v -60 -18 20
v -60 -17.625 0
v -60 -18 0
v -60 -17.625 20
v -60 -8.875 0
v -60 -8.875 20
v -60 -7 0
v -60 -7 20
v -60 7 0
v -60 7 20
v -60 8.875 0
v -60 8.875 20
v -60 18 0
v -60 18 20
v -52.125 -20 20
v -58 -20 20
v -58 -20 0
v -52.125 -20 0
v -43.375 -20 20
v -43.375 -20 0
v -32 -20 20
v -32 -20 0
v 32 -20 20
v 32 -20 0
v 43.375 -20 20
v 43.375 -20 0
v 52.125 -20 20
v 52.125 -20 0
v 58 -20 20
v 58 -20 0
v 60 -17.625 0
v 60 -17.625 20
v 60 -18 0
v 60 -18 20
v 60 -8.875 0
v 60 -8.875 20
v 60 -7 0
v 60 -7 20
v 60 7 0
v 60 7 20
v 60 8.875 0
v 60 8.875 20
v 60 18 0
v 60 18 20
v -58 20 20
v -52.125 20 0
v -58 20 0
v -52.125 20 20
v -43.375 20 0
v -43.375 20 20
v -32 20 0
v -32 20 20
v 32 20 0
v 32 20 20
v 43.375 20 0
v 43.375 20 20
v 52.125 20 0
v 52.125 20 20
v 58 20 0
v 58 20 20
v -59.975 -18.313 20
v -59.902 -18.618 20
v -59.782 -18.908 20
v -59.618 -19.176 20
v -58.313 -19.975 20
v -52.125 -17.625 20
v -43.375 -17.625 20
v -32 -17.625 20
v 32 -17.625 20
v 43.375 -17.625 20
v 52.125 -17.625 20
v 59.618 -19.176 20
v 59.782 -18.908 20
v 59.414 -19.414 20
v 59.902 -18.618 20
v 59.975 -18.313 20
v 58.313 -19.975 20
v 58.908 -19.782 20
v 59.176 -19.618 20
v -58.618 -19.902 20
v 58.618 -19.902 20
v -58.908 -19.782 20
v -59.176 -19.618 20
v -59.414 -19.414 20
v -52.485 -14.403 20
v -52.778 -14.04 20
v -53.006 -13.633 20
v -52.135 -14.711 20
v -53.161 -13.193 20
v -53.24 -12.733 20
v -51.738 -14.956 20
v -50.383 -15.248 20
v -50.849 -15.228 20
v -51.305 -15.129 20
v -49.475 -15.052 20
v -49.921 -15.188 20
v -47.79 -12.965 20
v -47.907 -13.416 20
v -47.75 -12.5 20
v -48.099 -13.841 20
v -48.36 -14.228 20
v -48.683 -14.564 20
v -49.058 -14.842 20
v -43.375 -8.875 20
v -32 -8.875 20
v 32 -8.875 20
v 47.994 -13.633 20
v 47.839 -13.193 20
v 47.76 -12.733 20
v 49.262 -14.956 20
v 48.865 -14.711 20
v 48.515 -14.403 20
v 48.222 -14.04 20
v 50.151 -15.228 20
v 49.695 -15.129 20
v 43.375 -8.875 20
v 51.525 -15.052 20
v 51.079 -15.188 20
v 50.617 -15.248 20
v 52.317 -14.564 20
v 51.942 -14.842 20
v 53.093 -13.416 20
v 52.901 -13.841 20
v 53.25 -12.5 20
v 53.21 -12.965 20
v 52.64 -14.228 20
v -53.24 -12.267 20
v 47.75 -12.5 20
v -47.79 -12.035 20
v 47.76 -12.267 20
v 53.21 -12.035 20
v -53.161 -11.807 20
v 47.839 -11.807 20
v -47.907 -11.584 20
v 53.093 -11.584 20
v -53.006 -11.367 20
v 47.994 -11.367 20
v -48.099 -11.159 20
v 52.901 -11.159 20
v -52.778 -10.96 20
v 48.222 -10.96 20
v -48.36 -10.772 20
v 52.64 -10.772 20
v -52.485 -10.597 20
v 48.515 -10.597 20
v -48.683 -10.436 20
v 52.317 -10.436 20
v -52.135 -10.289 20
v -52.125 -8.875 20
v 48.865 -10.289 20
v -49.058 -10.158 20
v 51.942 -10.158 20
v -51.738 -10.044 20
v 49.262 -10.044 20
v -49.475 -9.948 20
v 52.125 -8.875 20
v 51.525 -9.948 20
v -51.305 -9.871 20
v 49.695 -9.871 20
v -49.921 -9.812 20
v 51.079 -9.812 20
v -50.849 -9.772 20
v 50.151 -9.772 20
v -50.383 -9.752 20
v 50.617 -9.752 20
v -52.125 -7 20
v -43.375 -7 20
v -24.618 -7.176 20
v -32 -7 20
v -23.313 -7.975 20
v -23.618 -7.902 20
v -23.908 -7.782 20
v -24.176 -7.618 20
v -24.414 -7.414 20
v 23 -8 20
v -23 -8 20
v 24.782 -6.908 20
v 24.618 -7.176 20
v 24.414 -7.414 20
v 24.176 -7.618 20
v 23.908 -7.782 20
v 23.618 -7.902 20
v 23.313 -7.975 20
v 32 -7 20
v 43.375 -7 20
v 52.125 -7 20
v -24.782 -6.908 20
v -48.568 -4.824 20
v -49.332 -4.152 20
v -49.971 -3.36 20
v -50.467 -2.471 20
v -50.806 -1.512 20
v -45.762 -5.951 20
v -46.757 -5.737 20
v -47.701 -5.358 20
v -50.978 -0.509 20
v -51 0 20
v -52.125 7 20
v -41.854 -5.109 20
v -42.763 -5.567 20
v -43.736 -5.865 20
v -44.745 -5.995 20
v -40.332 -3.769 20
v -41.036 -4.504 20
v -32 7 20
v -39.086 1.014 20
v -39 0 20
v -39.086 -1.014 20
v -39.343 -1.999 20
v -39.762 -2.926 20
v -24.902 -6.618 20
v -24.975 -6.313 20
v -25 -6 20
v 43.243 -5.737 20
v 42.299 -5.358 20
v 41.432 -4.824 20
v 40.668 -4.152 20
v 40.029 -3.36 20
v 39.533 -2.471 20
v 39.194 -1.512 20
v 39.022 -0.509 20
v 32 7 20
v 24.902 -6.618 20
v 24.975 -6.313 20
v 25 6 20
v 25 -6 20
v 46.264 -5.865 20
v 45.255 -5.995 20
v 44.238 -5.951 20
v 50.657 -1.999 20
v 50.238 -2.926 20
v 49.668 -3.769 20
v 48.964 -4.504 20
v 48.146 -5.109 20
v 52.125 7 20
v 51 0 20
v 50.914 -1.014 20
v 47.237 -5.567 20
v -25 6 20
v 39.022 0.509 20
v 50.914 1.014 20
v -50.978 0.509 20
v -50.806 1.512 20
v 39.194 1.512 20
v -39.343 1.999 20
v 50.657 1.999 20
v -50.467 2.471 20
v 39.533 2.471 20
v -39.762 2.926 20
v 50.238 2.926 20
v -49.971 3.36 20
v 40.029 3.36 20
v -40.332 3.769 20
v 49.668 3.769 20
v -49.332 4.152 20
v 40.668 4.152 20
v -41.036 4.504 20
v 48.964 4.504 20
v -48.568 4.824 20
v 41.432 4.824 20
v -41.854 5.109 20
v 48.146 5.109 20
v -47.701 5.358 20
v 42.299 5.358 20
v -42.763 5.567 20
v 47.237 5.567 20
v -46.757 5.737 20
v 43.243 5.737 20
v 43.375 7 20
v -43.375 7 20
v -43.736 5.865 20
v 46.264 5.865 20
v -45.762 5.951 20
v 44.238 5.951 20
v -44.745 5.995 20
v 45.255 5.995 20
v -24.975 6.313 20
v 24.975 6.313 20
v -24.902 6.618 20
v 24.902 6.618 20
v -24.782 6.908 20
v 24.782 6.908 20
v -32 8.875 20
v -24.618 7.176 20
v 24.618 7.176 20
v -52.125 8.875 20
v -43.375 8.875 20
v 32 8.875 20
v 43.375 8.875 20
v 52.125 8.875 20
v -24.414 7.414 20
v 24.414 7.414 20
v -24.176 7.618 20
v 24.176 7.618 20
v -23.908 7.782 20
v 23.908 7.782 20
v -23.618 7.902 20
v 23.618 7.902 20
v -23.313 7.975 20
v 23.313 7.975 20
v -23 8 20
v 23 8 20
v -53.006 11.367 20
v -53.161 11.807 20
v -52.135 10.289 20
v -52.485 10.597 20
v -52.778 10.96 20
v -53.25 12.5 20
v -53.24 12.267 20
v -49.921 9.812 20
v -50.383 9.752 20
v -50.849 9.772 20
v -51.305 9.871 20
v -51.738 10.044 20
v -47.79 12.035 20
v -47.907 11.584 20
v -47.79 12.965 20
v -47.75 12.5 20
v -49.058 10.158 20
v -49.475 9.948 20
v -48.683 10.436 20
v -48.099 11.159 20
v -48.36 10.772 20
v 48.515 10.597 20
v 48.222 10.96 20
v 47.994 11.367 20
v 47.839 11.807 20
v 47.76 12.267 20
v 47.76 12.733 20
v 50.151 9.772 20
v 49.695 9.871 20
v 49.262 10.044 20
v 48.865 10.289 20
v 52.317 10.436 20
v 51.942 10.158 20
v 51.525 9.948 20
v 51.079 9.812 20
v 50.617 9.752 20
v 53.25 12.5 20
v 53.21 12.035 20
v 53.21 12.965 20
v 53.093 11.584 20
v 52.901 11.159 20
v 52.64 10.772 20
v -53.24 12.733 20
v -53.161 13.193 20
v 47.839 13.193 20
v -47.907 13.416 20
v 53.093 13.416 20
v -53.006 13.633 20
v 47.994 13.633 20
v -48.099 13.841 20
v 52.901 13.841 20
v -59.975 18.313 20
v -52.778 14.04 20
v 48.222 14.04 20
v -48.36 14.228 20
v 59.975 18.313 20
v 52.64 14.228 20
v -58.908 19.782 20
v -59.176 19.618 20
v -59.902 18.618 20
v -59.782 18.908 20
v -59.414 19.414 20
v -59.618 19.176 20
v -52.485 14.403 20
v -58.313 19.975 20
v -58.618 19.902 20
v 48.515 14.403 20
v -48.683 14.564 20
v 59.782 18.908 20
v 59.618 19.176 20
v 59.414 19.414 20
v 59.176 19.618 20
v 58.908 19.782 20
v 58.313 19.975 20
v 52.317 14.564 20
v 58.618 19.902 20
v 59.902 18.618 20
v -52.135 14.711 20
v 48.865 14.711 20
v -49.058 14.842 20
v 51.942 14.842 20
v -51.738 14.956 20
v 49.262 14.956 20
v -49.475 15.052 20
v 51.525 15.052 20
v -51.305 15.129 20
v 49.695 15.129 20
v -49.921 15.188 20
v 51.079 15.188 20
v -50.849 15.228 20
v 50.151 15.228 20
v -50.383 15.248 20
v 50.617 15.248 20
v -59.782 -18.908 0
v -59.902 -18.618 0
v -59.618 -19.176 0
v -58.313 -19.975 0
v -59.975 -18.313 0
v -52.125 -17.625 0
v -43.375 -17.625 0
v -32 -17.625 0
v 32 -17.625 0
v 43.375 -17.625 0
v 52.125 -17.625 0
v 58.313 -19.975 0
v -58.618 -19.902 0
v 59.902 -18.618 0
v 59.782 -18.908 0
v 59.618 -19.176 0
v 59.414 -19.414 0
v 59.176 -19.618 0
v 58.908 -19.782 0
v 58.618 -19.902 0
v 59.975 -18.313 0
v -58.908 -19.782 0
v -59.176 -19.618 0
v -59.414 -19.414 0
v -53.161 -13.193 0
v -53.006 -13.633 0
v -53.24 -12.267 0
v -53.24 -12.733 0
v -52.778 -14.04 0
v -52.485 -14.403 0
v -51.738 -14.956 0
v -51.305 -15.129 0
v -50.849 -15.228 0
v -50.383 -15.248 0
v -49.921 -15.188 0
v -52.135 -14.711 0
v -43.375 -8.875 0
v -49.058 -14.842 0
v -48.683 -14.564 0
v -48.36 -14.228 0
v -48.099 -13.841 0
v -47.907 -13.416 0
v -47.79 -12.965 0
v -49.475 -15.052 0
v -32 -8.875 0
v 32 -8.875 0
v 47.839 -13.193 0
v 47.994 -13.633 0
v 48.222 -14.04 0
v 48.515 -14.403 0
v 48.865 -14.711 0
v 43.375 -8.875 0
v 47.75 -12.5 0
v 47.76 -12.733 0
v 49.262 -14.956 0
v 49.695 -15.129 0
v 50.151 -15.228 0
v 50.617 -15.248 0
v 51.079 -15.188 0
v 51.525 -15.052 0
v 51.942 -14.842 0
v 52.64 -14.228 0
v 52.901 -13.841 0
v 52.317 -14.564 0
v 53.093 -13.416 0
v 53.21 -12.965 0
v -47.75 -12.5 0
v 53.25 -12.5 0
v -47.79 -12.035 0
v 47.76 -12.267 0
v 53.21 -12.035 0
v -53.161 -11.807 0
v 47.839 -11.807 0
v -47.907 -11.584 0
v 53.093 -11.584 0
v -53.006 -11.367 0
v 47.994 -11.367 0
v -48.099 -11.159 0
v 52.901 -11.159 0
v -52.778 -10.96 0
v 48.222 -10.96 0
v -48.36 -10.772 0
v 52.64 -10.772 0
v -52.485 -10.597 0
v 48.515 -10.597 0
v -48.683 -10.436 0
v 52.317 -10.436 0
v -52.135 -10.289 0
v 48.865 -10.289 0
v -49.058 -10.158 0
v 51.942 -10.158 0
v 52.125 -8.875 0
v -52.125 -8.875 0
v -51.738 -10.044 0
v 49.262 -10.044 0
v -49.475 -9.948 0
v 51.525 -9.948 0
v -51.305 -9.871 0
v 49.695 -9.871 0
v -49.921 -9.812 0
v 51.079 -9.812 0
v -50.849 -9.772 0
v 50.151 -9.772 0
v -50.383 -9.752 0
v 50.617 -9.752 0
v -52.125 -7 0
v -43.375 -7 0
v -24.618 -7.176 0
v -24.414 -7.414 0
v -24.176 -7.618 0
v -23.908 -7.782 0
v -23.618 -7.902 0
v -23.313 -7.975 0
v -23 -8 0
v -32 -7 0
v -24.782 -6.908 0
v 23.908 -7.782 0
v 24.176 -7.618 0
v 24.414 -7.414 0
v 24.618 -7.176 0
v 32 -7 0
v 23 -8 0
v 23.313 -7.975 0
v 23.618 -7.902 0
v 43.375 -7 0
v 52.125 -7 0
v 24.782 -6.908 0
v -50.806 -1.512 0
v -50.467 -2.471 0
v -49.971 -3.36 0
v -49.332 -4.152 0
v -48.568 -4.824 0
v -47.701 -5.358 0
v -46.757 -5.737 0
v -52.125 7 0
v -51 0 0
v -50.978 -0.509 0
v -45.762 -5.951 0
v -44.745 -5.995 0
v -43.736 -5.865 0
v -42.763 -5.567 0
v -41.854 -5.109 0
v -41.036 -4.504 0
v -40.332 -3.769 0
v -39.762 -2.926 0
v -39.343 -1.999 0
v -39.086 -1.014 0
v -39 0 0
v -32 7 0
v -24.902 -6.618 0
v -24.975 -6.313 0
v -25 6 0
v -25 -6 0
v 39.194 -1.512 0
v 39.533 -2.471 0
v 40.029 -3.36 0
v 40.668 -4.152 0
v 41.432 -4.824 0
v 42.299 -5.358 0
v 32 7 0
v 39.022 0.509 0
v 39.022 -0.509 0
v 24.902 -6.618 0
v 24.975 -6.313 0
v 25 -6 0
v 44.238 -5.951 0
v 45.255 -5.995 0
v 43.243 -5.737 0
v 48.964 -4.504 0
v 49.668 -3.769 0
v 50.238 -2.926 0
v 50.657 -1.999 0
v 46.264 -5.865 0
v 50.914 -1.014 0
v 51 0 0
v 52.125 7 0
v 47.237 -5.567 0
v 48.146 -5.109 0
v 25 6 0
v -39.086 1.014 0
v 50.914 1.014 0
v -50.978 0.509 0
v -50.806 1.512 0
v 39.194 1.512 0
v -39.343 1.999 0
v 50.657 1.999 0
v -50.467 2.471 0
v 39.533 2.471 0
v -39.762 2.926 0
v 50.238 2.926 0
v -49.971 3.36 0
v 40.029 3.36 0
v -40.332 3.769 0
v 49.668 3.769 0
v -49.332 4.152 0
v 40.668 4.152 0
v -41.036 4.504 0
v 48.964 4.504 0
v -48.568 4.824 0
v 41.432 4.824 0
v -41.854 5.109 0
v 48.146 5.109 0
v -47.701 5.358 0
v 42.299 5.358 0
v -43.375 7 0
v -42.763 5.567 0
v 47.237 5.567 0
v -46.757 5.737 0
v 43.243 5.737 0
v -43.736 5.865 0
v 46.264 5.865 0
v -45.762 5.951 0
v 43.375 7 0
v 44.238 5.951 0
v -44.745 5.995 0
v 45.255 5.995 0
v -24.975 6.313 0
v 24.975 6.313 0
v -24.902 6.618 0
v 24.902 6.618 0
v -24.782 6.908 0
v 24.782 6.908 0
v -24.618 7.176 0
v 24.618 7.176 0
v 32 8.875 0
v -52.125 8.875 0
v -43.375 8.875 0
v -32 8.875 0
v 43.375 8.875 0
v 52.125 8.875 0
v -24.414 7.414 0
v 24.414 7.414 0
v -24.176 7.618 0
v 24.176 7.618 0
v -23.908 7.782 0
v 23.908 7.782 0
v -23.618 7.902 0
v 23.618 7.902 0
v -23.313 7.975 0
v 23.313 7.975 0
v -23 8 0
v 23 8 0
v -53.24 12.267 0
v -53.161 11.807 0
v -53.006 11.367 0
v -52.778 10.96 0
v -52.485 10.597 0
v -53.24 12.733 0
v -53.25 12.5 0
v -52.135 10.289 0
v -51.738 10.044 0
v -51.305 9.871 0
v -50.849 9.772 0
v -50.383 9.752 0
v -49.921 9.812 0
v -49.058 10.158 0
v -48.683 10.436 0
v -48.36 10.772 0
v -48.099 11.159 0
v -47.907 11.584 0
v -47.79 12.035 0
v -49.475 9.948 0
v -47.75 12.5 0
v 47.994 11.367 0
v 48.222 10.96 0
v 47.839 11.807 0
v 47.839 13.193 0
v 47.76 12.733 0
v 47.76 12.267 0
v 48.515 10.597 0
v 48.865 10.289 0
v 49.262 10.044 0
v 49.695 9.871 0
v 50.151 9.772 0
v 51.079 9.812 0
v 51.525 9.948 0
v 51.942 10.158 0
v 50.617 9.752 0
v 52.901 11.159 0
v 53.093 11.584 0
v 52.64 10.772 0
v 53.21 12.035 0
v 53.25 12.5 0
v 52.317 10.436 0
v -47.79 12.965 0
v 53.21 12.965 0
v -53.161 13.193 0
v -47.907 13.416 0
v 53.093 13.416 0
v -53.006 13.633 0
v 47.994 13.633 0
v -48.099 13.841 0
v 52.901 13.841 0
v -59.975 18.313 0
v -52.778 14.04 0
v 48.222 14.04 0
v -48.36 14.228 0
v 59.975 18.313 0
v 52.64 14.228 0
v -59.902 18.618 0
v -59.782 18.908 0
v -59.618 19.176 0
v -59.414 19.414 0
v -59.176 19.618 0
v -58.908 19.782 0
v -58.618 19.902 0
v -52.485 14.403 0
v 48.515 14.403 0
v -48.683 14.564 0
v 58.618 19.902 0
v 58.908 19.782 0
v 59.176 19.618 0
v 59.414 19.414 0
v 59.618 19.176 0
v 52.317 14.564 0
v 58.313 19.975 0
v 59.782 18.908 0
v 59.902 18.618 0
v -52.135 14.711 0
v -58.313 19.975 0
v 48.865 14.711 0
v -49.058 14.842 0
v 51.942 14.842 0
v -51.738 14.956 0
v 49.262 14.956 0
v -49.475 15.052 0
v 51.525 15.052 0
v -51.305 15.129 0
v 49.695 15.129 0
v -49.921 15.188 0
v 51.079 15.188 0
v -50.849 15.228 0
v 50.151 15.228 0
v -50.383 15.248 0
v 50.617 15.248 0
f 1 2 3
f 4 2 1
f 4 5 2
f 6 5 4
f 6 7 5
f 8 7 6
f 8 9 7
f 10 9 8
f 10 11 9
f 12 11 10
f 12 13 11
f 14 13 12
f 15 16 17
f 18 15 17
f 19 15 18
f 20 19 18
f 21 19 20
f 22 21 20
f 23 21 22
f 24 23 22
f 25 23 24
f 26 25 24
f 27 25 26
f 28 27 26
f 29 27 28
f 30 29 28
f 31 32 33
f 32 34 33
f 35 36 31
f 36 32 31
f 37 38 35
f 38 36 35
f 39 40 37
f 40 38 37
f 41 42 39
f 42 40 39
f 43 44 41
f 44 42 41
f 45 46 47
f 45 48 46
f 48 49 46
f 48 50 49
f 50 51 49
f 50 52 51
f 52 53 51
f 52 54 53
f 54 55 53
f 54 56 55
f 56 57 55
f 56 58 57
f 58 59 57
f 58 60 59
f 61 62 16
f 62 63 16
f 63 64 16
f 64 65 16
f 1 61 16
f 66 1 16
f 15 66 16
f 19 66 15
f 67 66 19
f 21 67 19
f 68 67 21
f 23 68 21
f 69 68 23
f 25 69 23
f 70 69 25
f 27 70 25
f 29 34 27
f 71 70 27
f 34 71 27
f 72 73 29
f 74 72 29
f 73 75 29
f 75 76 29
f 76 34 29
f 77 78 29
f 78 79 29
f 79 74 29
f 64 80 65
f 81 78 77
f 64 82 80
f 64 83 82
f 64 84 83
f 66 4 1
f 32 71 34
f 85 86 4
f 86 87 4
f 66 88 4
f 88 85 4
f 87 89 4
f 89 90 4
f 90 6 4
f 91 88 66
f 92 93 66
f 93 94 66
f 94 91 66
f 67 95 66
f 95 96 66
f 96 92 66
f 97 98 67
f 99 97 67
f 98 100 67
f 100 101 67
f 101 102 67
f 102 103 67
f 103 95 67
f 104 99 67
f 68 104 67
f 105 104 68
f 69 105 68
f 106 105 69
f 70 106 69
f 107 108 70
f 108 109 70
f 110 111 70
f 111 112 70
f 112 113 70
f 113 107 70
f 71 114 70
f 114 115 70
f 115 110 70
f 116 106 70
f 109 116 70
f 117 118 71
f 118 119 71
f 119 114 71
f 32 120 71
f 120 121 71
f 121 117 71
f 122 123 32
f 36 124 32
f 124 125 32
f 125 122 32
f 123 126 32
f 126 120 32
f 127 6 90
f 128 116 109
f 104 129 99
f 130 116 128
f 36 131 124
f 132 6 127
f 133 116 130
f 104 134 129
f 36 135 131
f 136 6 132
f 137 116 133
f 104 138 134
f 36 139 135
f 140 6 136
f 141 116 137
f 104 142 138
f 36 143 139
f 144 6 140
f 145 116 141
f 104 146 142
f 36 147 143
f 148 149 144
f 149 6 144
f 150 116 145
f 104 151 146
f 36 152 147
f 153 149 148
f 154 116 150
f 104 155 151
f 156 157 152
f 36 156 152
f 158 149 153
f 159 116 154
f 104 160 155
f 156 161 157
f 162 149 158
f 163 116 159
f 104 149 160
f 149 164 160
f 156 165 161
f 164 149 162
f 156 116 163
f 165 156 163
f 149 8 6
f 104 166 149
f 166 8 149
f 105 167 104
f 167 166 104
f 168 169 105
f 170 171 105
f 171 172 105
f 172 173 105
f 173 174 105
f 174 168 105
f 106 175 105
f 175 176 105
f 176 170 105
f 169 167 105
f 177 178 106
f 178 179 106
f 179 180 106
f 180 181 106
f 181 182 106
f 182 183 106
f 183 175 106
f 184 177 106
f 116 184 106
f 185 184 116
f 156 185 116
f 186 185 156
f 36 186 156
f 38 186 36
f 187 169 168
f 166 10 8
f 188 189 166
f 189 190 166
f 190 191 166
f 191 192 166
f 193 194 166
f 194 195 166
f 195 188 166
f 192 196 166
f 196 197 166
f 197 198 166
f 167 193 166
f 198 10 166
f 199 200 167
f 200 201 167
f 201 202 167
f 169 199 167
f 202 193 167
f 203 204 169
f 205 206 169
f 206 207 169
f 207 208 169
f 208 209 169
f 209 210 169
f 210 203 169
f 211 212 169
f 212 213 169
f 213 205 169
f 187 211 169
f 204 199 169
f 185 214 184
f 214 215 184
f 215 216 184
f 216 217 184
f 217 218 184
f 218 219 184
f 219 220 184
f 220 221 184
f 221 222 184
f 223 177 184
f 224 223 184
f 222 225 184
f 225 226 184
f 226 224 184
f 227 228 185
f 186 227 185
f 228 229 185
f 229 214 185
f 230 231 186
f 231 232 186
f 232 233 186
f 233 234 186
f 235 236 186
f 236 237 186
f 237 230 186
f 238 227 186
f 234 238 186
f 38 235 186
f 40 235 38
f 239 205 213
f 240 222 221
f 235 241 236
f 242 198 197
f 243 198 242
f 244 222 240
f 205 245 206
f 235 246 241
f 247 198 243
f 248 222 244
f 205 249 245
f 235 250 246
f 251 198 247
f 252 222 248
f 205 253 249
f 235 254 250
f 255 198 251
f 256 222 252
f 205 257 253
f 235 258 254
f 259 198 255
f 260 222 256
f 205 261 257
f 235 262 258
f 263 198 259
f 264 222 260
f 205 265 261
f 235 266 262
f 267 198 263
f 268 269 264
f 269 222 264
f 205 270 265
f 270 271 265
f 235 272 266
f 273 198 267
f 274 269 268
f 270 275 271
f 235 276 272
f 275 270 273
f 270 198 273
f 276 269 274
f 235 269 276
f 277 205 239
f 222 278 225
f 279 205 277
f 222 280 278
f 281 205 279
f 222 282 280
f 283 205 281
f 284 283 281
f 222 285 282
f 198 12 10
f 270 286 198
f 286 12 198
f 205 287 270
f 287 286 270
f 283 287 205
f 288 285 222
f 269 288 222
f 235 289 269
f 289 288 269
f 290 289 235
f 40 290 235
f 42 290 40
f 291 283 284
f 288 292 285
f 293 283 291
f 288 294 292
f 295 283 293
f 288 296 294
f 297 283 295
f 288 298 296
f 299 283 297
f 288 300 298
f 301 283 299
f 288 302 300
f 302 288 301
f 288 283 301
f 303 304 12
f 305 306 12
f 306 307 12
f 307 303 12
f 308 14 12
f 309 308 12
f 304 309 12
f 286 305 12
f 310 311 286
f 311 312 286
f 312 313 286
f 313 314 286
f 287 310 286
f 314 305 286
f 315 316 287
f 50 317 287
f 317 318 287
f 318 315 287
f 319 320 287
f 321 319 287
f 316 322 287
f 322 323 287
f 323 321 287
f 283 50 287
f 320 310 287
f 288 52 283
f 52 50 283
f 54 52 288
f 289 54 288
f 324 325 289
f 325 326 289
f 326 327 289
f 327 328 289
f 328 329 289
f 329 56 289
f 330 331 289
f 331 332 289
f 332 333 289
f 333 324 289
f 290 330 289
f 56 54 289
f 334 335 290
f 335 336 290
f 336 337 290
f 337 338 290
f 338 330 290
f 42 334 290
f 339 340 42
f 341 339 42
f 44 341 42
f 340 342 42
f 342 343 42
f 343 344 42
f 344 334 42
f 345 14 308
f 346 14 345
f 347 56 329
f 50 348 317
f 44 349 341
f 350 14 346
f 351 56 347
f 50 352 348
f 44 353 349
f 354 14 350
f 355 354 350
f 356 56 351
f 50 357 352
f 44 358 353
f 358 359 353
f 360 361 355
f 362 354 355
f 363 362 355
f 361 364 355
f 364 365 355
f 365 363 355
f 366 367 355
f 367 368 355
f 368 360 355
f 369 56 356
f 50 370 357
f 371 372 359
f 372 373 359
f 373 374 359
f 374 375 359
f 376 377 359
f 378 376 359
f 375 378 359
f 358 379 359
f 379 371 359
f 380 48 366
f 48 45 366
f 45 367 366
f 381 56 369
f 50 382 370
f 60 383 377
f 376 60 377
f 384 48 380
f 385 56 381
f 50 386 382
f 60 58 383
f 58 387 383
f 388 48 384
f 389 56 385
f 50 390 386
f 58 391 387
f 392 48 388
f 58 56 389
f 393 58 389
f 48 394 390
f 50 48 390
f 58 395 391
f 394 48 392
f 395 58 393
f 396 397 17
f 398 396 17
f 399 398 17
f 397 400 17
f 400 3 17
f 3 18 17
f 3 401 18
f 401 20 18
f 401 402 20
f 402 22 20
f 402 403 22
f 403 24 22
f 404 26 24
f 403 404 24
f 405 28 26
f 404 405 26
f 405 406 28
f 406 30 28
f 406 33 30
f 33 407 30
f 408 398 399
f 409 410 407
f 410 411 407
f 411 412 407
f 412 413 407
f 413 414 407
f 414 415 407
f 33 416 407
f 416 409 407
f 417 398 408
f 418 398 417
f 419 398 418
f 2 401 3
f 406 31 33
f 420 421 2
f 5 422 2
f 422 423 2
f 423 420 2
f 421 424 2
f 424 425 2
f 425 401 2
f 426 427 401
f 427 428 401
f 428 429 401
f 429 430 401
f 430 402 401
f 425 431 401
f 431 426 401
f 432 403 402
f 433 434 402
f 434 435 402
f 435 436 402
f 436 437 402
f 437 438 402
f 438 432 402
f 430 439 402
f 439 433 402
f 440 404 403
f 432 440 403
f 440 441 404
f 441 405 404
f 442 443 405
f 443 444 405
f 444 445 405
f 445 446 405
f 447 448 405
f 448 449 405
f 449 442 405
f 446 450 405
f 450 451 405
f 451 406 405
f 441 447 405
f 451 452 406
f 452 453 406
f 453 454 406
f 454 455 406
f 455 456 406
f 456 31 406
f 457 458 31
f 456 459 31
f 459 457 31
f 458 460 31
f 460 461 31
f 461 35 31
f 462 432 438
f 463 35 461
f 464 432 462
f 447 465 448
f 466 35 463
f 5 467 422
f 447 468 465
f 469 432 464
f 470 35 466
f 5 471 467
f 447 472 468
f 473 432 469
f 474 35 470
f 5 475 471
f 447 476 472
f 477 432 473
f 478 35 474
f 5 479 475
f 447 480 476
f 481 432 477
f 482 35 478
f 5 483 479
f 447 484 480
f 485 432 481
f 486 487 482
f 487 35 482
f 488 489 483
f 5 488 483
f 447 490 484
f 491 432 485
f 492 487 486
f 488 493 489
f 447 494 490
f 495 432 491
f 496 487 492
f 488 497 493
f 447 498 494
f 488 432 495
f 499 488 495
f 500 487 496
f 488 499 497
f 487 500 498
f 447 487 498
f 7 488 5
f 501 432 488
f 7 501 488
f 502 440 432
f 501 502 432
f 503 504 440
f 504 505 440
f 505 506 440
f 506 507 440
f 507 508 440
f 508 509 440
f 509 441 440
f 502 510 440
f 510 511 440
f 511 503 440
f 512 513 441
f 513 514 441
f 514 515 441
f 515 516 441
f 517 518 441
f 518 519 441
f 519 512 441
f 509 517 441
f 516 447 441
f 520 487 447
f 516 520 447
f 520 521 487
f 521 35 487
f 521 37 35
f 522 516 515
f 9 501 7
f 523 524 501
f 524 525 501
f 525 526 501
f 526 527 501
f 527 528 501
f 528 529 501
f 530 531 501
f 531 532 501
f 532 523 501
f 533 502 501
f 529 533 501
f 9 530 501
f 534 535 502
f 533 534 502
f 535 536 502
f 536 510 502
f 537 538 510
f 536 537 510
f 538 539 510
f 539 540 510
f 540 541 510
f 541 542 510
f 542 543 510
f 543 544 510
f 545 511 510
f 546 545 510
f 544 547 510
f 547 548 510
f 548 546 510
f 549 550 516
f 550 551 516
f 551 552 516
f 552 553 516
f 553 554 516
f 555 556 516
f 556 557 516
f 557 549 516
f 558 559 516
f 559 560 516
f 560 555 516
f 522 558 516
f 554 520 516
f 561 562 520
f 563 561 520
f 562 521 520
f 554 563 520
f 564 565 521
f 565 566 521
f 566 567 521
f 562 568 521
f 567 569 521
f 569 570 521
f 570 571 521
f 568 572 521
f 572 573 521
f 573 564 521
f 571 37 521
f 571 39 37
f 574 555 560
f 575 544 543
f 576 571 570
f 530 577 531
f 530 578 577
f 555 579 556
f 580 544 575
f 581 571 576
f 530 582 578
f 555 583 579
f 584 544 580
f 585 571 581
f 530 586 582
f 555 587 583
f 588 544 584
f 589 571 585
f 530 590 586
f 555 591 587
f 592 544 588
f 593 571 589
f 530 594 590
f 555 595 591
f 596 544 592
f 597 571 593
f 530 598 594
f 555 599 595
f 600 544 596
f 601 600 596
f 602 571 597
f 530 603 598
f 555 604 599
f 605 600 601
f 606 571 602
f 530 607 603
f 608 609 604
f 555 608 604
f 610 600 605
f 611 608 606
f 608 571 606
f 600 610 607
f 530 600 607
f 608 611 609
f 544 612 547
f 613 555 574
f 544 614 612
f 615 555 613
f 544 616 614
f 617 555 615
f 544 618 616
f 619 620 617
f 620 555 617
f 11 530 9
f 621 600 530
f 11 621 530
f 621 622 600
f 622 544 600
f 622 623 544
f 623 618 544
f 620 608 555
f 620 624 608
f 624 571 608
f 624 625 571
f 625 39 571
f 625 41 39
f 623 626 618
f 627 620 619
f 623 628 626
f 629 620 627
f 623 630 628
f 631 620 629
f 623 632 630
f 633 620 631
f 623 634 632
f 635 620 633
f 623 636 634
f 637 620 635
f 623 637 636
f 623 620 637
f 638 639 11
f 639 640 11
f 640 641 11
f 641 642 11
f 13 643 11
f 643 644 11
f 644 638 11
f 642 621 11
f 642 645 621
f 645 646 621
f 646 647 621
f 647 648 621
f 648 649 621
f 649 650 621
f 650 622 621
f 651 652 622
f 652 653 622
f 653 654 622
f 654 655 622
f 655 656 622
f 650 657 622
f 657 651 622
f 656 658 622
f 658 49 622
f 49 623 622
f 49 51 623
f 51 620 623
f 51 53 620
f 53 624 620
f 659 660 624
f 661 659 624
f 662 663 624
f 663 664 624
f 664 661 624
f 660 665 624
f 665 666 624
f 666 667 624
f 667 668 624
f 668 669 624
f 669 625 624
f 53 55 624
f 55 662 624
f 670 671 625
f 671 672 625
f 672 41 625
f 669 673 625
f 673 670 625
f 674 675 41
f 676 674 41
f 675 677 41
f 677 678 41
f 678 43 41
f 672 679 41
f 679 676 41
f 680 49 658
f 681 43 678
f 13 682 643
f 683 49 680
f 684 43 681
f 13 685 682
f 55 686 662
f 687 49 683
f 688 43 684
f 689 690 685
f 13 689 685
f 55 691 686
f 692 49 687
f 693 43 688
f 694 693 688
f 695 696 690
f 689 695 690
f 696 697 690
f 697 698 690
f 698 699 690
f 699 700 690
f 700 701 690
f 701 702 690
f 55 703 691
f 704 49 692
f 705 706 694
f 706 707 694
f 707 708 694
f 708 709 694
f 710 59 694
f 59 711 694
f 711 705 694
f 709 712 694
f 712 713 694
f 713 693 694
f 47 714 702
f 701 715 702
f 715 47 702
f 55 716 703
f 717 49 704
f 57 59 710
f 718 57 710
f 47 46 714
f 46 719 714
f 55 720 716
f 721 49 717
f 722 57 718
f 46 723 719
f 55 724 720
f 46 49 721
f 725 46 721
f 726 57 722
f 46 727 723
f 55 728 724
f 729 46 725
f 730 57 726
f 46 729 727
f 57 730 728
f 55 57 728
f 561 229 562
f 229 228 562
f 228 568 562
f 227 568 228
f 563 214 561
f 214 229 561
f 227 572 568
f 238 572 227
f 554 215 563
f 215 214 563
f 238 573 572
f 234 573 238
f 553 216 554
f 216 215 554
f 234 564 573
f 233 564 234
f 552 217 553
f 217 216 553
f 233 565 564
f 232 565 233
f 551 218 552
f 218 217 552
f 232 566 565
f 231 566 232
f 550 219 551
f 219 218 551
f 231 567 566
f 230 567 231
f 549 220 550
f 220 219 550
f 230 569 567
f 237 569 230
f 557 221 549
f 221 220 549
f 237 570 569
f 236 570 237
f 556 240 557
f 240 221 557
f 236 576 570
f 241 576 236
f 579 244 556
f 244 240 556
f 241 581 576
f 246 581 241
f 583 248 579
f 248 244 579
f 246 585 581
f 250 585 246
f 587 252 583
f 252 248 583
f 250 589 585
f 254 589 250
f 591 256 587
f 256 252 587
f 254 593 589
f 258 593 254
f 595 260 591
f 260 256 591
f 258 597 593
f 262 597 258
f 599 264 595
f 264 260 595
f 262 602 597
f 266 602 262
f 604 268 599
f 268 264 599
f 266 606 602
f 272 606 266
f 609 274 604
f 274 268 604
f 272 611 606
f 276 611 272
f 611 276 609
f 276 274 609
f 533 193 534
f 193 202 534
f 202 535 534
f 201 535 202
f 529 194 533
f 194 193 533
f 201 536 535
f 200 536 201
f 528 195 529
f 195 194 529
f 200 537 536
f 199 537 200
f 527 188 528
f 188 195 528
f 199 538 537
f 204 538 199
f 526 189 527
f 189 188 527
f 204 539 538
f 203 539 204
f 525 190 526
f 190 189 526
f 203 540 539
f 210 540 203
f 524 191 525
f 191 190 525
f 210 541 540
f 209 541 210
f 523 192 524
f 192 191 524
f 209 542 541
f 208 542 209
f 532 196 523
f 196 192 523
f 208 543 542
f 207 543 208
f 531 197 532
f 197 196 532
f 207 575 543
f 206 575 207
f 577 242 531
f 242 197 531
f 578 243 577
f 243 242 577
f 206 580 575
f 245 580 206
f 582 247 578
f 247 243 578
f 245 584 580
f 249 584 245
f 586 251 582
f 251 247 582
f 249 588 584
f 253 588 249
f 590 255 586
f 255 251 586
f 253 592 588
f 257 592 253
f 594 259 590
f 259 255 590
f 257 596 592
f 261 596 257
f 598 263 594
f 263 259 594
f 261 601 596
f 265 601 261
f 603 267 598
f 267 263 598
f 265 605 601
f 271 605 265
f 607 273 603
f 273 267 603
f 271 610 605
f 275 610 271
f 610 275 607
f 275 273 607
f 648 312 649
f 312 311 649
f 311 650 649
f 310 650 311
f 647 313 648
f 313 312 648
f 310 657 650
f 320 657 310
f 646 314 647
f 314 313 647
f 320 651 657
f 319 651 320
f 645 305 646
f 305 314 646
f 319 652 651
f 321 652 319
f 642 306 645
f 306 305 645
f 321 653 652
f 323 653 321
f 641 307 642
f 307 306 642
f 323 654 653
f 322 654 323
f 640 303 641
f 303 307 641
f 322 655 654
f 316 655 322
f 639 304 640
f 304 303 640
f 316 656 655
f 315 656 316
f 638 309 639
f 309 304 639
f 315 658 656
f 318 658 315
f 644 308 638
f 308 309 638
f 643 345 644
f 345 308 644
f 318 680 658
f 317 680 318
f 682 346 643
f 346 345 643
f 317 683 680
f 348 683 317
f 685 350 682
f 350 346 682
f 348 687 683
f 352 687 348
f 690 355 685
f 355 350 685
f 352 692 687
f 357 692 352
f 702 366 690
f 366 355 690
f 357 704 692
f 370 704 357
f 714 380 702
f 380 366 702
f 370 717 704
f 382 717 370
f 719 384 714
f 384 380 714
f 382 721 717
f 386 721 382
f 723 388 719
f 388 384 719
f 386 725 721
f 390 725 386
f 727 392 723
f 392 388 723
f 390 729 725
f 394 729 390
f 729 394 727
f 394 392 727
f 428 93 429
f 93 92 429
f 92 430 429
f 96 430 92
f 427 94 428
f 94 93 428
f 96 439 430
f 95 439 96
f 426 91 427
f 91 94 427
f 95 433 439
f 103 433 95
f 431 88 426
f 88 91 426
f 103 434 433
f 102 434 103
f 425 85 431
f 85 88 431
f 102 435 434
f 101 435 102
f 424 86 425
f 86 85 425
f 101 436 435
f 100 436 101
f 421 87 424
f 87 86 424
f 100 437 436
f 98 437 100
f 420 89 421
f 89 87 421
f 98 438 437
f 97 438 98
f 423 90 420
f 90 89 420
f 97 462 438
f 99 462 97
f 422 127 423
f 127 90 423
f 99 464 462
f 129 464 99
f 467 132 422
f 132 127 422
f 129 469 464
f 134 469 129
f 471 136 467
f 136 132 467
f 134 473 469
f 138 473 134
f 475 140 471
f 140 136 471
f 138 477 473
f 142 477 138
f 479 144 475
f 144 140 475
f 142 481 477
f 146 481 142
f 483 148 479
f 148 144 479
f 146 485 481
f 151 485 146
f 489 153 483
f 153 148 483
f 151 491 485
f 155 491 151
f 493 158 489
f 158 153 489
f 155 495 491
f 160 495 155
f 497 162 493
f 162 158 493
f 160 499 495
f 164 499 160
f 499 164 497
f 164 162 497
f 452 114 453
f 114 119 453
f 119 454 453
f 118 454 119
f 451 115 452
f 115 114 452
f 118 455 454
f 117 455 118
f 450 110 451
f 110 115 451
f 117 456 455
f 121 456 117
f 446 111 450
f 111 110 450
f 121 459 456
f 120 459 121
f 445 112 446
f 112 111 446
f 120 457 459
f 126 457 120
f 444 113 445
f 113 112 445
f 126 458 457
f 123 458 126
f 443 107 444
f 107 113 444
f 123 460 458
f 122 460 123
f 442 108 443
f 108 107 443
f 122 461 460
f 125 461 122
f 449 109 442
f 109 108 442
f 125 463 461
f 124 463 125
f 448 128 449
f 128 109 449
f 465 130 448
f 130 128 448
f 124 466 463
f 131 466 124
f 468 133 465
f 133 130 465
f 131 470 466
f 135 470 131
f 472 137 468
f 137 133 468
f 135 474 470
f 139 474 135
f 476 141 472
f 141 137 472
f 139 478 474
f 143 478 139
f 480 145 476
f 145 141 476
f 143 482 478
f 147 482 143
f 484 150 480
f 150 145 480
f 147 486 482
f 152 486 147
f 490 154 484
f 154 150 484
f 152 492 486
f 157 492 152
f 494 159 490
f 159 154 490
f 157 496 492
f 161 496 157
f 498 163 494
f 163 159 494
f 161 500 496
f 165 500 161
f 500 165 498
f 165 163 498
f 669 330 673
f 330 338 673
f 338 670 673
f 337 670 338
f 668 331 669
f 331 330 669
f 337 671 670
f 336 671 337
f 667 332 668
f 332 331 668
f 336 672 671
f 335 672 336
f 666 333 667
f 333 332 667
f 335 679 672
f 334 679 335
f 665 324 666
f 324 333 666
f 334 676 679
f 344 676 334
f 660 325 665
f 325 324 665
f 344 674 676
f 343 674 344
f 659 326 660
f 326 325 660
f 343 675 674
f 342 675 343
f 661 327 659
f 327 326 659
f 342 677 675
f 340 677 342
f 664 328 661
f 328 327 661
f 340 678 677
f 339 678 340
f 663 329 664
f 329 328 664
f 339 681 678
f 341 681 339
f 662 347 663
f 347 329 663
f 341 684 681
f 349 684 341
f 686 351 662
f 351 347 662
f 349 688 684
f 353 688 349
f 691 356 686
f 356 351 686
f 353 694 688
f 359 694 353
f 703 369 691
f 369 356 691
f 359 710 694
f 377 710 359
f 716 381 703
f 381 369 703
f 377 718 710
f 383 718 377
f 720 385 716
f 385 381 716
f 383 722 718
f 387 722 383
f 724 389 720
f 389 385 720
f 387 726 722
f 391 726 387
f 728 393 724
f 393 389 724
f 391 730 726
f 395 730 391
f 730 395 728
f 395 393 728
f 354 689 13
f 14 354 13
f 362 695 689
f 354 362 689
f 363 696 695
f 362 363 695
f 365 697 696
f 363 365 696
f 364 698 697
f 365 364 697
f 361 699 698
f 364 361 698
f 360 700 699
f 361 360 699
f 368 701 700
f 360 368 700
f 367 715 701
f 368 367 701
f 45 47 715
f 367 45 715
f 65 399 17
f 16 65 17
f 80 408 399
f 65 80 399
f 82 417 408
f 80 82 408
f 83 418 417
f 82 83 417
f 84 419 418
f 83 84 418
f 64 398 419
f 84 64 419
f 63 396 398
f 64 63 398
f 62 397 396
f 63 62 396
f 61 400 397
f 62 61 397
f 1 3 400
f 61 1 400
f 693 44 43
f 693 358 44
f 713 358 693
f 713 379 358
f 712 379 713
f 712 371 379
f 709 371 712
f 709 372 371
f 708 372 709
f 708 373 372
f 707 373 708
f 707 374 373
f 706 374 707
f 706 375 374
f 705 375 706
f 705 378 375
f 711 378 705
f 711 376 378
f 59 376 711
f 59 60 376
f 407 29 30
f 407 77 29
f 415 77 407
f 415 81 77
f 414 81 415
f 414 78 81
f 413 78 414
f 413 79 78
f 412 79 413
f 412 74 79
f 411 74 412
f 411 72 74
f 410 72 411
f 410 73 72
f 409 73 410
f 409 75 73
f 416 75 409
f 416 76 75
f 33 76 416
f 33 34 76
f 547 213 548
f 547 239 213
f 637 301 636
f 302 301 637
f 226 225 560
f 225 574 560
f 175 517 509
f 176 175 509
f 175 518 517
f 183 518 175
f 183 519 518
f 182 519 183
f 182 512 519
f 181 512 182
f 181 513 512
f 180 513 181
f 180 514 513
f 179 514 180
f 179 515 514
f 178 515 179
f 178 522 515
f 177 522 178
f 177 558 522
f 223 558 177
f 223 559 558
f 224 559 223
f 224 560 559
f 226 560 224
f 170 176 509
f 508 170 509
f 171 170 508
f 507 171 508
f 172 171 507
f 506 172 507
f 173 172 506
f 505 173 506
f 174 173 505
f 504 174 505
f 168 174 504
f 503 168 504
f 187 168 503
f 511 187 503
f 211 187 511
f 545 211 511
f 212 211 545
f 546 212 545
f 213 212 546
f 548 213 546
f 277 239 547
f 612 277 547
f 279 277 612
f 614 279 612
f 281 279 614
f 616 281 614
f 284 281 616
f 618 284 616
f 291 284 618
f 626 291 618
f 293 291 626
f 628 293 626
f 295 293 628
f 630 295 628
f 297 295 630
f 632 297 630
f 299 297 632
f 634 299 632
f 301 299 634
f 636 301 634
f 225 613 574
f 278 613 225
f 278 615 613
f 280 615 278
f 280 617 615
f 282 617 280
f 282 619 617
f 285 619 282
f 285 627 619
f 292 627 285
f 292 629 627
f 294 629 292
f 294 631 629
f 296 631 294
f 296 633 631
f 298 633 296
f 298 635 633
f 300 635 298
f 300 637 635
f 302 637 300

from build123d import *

# Parameters (mm, degrees)
SKETCH_1_W          = 120
SKETCH_1_H          = 40
EXTRUDE_1_DEPTH     = 20
SKETCH_2_R          = 6
SKETCH_2_R_2        = 2.75
CUT_EXTRUDE_1_DEPTH = 20
FILLET_1_R          = 2
SKETCH_3_W          = 50
SKETCH_3_H          = 16
CUT_EXTRUDE_2_DEPTH = 67.332495807
FILLET_2_R          = 2


with BuildPart() as part:
    # 草图1 → 凸台-拉伸1 (new body)
    with BuildSketch(Plane.XY):
        Rectangle(SKETCH_1_W, SKETCH_1_H)
    extrude(amount=EXTRUDE_1_DEPTH)

    # 草图2 → 切除-拉伸1 (cut)
    with BuildSketch(Plane.XY.offset(20)):
        with Locations((45, 0)):
            Circle(SKETCH_2_R)
        with Locations((50.5, 12.5)):
            Circle(SKETCH_2_R_2)
        with Locations(Location((50.5, -12.5, 0), (0, 0, 180))):
            Circle(SKETCH_2_R_2)
        with Locations((-50.5, -12.5)):
            Circle(SKETCH_2_R_2)
        with Locations(Location((-50.5, 12.5, 0), (0, 0, 180))):
            Circle(SKETCH_2_R_2)
        with Locations(Location((-45, 0, 0), (0, 0, 180))):
            Circle(SKETCH_2_R)
    extrude(amount=-CUT_EXTRUDE_1_DEPTH, mode=Mode.SUBTRACT)

    # 圆角1
    fillet_1_edges = [part.edges().sort_by_distance(p)[0] for p in [
        (-60, 20, 10),
        (60, 20, 10),
        (60, -20, 10),
        (-60, -20, 10),
    ]]
    fillet(fillet_1_edges, radius=FILLET_1_R)

    # 草图3 → 切除-拉伸2 (cut, through all)
    with BuildSketch(Plane.XY.offset(20)):
        Rectangle(SKETCH_3_W, SKETCH_3_H)
    extrude(amount=-CUT_EXTRUDE_2_DEPTH, mode=Mode.SUBTRACT)

    # 圆角2
    fillet_2_edges = [part.edges().sort_by_distance(p)[0] for p in [
        (-25, -8, 10),
        (-25, 8, 10),
        (25, 8, 10),
        (25, -8, 10),
    ]]
    fillet(fillet_2_edges, radius=FILLET_2_R)


solid = part.part
